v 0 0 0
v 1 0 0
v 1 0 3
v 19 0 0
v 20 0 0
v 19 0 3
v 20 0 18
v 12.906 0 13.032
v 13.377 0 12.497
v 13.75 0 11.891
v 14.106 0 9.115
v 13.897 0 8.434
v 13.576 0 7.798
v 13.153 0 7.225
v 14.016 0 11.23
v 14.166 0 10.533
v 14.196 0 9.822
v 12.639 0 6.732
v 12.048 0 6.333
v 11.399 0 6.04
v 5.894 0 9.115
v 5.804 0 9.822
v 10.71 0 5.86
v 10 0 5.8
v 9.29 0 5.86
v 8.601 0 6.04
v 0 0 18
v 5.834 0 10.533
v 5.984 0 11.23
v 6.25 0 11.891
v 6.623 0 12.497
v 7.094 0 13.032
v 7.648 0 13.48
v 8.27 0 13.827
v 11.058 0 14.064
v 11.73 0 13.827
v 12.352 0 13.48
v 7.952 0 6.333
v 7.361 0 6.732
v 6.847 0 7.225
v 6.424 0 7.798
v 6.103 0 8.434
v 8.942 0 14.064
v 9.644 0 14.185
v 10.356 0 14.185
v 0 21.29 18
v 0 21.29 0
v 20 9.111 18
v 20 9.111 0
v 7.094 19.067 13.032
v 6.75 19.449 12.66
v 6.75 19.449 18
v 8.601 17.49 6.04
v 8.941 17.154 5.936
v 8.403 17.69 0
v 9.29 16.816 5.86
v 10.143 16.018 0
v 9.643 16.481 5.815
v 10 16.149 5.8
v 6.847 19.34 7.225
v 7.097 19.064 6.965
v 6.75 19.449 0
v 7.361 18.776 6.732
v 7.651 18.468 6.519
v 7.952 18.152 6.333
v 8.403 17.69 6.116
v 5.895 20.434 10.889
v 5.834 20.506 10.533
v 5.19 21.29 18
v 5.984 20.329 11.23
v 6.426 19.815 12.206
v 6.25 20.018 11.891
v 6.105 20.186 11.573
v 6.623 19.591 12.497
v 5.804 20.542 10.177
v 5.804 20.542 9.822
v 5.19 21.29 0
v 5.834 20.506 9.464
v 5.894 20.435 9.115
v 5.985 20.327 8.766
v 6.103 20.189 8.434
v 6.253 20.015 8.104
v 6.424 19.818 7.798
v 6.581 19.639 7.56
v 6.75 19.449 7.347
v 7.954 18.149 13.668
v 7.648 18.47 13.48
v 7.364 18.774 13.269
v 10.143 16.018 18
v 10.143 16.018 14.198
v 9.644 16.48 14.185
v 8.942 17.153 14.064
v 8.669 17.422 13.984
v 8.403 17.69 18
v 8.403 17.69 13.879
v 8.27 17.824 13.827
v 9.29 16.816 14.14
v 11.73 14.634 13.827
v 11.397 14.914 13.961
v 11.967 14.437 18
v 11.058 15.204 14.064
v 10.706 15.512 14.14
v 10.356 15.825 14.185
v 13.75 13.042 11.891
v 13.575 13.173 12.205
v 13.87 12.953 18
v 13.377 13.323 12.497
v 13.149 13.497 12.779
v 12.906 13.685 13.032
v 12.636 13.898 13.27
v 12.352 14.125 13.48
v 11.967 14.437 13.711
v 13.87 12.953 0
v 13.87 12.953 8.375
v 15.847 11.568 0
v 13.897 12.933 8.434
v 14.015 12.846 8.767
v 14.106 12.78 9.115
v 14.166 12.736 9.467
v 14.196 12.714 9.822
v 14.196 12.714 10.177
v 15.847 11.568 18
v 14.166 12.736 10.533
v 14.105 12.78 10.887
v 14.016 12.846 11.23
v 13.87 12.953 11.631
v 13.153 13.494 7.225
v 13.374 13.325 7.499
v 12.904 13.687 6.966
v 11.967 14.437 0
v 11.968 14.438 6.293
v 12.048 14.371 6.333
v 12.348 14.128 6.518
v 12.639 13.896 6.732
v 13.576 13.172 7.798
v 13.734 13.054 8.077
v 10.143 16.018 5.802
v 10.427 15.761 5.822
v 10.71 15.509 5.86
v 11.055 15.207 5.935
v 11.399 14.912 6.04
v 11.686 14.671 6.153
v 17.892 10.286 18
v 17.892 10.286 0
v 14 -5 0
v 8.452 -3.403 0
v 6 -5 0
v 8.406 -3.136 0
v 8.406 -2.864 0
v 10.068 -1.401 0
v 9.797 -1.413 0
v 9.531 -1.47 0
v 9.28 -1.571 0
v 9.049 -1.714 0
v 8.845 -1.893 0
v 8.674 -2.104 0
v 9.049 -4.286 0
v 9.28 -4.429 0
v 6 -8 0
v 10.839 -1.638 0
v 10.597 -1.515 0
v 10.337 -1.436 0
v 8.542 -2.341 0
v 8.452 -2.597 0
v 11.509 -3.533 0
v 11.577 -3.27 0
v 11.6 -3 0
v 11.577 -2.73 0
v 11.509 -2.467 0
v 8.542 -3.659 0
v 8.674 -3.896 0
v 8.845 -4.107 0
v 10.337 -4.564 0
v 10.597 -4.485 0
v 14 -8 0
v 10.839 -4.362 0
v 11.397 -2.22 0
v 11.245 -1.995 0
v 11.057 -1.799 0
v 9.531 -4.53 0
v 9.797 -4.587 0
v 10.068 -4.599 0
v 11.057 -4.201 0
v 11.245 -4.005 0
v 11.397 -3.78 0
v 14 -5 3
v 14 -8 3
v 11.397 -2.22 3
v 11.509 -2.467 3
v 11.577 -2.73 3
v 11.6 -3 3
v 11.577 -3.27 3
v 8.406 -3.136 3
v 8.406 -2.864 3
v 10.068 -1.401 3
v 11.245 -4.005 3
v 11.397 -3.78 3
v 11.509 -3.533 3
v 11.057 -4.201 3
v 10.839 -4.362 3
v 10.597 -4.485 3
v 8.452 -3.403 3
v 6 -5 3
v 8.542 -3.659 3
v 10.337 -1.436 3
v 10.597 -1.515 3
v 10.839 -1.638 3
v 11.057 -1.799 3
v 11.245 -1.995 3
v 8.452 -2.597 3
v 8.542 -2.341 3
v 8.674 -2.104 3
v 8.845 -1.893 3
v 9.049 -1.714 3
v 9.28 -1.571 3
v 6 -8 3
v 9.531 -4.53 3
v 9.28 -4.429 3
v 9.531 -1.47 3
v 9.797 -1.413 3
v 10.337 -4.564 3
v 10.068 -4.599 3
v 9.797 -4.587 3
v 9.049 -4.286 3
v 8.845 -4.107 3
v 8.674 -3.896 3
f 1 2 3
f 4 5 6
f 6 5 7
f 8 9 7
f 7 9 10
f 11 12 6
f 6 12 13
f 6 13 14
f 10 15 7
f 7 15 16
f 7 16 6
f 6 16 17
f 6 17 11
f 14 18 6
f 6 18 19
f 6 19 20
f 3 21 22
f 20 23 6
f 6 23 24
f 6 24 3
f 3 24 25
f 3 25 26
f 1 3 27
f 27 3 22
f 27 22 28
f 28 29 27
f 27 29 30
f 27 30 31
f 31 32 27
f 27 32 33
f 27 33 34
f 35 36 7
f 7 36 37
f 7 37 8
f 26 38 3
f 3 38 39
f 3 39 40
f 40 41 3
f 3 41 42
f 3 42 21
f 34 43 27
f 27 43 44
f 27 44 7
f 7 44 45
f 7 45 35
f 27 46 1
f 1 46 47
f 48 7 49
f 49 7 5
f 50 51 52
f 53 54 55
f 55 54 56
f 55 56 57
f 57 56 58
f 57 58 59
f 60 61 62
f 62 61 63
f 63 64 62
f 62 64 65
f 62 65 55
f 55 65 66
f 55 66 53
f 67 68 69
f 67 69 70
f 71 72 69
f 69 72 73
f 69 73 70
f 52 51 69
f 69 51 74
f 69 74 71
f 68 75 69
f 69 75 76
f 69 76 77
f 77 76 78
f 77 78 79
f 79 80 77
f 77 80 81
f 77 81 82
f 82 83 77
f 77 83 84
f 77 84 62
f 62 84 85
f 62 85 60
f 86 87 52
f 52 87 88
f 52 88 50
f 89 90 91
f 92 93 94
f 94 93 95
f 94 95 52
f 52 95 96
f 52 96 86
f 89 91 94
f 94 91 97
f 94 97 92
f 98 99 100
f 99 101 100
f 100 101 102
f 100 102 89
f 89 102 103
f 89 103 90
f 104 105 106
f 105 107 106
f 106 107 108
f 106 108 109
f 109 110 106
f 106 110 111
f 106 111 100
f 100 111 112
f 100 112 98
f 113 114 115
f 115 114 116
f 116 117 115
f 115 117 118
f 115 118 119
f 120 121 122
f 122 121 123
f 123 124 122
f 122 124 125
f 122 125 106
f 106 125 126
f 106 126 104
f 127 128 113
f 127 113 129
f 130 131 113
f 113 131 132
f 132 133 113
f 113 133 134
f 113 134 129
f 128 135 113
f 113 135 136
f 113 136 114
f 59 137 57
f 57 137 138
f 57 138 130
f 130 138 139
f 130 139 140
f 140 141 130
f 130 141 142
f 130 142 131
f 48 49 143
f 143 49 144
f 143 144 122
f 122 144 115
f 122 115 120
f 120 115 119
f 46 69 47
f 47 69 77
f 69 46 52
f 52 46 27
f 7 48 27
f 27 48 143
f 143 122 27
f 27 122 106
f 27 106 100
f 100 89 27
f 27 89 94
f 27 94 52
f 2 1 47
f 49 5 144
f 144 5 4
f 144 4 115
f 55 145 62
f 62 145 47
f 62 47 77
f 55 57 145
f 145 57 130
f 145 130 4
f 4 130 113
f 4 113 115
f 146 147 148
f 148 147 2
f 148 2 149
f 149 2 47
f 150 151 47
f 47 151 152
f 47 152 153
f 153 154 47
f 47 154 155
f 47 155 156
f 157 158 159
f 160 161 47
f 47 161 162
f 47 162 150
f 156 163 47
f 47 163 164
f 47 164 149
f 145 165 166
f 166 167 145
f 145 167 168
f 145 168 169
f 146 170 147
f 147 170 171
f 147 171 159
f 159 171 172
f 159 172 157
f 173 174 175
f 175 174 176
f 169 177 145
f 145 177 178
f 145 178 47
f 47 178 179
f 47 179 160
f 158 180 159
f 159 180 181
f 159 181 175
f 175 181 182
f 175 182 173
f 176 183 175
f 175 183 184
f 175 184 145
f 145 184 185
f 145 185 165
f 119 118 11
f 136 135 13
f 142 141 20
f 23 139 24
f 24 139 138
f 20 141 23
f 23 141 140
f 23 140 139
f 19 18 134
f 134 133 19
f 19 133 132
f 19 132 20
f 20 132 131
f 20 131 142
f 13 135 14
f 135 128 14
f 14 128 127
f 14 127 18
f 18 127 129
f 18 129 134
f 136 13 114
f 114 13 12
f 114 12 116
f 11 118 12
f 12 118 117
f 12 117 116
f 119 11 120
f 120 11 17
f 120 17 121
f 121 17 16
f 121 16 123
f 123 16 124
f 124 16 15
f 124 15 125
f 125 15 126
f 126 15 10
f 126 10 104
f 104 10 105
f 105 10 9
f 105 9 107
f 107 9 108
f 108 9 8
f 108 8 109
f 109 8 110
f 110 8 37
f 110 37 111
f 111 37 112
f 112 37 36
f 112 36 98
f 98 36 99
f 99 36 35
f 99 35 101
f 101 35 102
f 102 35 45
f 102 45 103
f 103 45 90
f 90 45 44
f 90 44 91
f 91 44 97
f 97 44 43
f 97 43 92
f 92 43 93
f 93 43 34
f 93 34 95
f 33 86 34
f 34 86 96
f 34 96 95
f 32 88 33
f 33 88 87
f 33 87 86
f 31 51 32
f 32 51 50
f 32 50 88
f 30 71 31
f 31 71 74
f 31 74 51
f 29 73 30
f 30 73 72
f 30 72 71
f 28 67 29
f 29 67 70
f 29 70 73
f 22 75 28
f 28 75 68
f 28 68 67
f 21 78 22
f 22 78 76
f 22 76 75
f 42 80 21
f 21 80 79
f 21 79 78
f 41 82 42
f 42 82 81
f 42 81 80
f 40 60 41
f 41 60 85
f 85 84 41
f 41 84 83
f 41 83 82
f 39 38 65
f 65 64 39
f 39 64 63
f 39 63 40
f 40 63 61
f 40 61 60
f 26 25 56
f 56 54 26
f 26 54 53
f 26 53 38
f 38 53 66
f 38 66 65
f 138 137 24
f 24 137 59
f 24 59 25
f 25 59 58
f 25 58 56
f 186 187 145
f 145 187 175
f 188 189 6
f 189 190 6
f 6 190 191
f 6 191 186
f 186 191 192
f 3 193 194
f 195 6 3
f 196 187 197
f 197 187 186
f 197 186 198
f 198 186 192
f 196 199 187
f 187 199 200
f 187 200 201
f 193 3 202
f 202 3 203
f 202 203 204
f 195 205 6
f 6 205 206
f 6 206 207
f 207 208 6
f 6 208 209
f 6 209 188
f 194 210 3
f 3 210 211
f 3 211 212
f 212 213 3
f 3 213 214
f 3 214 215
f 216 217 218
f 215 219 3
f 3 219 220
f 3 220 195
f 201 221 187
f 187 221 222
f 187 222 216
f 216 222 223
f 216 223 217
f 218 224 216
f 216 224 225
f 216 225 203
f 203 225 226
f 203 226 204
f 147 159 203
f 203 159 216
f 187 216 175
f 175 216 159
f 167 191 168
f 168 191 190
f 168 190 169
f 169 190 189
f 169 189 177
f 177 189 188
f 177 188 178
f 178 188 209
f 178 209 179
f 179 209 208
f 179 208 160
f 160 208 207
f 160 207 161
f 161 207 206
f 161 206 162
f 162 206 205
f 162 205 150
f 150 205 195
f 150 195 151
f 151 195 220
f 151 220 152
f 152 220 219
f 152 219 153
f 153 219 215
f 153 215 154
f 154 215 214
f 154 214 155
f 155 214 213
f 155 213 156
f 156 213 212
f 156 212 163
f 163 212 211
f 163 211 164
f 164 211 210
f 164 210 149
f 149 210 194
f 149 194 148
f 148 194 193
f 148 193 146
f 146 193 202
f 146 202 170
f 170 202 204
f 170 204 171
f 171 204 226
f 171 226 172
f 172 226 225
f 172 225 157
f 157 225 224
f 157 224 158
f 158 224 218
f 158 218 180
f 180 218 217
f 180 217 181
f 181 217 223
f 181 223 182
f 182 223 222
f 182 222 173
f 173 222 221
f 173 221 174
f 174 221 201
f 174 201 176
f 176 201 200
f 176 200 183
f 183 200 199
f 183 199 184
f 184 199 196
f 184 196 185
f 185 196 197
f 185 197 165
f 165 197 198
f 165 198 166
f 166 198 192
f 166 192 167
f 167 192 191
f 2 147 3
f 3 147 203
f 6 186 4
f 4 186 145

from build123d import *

# Parameters (mm, degrees)
EXTRUDE_1_DEPTH     = 18
SKETCH_2_R          = 4.2
CUT_EXTRUDE_1_DEPTH = 28
EXTRUDE_2_DEPTH     = 8
SKETCH_4_R          = 1.6
CUT_EXTRUDE_2_DEPTH = 8
CHAMFER_1_SIZE      = 5
CHAMFER_2_SIZE      = 5


with BuildPart() as part:
    # 草图1 → 凸台-拉伸1 (new body)
    with BuildSketch(Plane.XY):
        with BuildLine():
            Line((0, 0), (20, 0))
            Line((20, 0), (20, 9.111319982))
            ThreePointArc((20, 9.111319982), (11.967350423, 14.437400737), (5.19, 21.29))
            Line((5.19, 21.29), (0, 21.29))
            Line((0, 21.29), (0, 0))
        make_face()
    extrude(amount=EXTRUDE_1_DEPTH)

    # 草图2 → 切除-拉伸1 (cut)
    with BuildSketch(Plane.XZ):
        with Locations((10, 10)):
            Circle(SKETCH_2_R)
    extrude(amount=-CUT_EXTRUDE_1_DEPTH, mode=Mode.SUBTRACT)

    # 草图3 → 凸台-拉伸2 (add)
    with BuildSketch(Plane.XZ):
        Polygon((10, 0), (14, 0), (14, 3), (6, 3), (6, 0), align=None)
    extrude(amount=EXTRUDE_2_DEPTH)

    # 草图4 → 切除-拉伸2 (cut)
    with BuildSketch(Plane.XY.offset(3)):
        with Locations((10, -3)):
            Circle(SKETCH_4_R)
    extrude(amount=-CUT_EXTRUDE_2_DEPTH, mode=Mode.SUBTRACT)

    # 倒角1
    chamfer_1_edges = [part.edges().sort_by_distance(p)[0] for p in [
        (6, 0, 1.5),
    ]]
    chamfer(chamfer_1_edges, length=CHAMFER_1_SIZE)

    # 倒角2
    chamfer_2_edges = [part.edges().sort_by_distance(p)[0] for p in [
        (14, 0, 1.5),
    ]]
    chamfer(chamfer_2_edges, length=CHAMFER_2_SIZE)


solid = part.part
